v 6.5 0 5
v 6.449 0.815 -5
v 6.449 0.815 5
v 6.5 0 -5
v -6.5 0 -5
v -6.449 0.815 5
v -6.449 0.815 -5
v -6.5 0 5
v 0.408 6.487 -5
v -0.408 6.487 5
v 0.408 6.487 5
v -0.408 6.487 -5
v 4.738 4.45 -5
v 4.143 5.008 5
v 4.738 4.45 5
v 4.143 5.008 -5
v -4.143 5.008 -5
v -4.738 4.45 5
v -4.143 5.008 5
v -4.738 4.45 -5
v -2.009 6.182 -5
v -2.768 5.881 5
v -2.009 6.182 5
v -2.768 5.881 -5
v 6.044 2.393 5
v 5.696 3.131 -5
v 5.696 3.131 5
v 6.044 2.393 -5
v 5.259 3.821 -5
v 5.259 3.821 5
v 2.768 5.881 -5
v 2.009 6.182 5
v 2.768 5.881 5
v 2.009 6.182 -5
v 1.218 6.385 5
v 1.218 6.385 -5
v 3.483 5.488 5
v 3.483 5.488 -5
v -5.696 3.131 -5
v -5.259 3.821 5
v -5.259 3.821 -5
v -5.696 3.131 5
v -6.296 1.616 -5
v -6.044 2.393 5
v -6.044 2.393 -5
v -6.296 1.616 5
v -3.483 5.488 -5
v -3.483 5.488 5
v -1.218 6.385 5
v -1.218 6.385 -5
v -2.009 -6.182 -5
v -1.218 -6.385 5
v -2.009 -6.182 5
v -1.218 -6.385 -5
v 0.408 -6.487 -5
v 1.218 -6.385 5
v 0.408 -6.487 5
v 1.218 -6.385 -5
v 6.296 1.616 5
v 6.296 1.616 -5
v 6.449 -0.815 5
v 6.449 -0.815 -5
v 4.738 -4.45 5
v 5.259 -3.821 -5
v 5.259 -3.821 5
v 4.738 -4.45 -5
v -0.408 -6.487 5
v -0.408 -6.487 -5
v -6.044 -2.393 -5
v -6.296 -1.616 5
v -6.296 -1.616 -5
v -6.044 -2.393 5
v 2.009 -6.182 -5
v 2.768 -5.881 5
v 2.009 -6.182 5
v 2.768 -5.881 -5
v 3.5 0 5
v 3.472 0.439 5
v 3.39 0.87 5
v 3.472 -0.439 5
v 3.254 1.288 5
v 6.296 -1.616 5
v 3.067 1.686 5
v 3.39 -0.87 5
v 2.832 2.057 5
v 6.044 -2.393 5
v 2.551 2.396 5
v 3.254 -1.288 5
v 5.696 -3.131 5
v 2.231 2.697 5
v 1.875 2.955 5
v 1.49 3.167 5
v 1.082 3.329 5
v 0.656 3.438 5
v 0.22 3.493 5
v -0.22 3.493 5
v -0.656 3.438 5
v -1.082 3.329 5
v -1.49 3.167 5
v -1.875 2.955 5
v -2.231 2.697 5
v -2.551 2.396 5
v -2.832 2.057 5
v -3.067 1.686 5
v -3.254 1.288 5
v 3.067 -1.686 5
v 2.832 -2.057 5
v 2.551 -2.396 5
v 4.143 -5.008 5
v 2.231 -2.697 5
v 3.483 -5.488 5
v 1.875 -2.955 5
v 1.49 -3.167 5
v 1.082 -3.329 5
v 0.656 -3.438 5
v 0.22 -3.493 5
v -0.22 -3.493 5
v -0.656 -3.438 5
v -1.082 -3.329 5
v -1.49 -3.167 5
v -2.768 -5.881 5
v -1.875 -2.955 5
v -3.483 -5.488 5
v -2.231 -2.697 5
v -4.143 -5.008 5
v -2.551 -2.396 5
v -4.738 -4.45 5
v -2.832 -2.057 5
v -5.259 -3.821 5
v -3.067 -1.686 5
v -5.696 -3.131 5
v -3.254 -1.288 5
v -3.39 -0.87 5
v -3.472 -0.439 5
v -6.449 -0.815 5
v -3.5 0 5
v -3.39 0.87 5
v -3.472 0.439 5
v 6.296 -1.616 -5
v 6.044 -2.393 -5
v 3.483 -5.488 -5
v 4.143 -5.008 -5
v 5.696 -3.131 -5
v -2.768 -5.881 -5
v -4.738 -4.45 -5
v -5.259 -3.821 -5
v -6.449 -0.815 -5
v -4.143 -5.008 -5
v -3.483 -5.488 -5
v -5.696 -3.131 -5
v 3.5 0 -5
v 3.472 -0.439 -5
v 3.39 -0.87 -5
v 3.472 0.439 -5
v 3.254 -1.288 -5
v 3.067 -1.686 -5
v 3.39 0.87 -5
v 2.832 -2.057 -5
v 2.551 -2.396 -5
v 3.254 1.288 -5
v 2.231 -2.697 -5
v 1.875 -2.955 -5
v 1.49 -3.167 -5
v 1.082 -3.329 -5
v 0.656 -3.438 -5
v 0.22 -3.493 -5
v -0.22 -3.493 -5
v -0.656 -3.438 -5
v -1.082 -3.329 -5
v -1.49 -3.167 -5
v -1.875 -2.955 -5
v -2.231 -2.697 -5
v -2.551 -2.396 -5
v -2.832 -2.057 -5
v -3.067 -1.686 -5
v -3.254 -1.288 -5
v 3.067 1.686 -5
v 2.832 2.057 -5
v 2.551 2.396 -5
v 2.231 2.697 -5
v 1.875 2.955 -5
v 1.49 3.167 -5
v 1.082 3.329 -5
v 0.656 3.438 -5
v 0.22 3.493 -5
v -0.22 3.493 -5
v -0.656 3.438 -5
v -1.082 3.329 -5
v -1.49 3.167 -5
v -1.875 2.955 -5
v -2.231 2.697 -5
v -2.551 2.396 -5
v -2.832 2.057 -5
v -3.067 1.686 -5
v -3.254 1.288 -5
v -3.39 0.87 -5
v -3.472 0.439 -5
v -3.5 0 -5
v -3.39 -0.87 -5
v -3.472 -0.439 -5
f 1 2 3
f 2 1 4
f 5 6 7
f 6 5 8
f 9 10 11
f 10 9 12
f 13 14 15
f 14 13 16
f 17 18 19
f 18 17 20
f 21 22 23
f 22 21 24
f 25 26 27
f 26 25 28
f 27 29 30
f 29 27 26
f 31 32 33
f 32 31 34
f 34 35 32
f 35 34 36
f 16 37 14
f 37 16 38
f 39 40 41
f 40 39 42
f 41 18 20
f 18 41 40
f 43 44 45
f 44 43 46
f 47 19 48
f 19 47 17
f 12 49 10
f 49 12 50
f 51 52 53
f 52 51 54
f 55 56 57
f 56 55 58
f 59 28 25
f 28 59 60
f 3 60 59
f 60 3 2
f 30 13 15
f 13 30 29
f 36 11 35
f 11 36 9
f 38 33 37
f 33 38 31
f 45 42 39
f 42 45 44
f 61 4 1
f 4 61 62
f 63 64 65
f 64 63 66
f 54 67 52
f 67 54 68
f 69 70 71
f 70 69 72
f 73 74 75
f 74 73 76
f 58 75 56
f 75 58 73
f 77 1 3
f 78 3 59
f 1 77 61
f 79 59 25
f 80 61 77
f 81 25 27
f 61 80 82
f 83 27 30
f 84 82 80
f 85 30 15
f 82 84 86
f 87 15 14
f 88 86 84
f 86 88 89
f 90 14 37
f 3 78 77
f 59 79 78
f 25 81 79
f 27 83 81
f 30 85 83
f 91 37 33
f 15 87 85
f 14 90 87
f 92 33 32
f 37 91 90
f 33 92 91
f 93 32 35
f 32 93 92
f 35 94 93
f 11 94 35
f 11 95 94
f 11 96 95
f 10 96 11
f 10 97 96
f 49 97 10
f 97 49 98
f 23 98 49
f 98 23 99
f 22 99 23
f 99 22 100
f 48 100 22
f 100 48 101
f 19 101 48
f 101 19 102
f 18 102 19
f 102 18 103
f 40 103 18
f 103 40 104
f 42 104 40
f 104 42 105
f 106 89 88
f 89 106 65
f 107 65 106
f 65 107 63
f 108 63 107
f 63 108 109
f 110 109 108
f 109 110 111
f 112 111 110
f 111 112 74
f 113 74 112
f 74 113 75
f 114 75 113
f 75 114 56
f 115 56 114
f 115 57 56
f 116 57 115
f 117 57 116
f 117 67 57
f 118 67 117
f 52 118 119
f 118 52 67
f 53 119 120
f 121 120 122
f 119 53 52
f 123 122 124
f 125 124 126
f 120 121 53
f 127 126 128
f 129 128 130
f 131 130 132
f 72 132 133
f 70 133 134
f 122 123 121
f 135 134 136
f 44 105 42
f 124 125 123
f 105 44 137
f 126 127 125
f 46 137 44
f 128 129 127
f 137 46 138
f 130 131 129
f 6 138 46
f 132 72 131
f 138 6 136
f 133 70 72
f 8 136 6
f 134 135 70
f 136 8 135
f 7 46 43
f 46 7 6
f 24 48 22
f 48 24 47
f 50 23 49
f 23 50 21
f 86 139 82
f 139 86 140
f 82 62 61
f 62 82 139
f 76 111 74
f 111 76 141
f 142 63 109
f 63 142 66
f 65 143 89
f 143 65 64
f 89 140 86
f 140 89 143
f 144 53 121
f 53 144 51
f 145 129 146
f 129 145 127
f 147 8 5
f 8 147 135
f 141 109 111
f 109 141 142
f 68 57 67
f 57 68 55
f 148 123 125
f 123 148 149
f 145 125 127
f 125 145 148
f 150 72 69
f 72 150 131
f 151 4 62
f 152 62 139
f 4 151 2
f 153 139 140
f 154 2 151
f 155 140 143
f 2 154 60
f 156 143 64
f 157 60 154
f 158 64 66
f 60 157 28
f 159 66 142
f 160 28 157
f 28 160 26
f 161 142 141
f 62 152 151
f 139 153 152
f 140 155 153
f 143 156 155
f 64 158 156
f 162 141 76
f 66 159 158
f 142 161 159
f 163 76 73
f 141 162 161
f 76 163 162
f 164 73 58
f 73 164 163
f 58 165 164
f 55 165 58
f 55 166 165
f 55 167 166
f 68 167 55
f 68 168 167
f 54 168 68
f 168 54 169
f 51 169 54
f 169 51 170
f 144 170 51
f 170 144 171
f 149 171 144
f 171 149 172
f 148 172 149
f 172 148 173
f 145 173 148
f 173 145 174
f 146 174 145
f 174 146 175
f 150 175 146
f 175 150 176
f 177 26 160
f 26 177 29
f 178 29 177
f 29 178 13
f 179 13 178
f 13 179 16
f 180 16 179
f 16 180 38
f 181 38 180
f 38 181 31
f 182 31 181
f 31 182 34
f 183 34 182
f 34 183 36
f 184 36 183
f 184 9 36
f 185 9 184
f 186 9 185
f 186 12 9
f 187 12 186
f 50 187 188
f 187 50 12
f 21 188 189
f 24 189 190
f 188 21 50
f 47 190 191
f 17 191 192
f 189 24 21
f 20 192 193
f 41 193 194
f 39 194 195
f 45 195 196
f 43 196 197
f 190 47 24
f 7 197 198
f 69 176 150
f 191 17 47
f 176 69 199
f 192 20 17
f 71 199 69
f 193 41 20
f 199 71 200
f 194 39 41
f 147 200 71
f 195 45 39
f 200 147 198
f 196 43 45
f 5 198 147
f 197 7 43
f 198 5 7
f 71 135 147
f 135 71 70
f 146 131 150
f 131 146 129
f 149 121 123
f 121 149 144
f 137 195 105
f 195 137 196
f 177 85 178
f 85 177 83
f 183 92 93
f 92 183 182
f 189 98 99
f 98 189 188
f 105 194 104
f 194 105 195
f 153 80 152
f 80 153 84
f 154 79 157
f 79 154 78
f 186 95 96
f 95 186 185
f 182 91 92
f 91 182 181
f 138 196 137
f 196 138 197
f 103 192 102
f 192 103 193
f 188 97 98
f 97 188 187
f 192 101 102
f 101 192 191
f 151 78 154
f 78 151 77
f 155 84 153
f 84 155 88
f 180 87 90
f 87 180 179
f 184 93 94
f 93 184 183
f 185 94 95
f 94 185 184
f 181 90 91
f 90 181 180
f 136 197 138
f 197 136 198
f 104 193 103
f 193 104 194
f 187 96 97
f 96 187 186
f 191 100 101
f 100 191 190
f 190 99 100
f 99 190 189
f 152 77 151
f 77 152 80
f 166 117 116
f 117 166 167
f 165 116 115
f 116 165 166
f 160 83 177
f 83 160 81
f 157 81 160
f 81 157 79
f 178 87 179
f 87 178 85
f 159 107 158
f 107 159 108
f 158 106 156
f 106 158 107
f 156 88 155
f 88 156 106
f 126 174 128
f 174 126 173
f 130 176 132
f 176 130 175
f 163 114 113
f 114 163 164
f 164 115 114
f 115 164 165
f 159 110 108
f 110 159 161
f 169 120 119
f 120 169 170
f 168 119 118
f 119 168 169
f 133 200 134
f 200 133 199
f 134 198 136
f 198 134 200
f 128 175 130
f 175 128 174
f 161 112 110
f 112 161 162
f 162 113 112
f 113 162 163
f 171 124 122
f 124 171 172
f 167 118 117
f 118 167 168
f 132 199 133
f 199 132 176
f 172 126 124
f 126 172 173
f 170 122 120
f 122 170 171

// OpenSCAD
$fn = 50;


difference() {
	union() {
		translate(v = [0, 0, -5.0000000000]) {
			cylinder(h = 10, r = 6.5000000000);
		}
	}
	union() {
		translate(v = [0, 0, -100.0000000000]) {
			cylinder(h = 200, r = 3.5000000000);
		}
	}
}
